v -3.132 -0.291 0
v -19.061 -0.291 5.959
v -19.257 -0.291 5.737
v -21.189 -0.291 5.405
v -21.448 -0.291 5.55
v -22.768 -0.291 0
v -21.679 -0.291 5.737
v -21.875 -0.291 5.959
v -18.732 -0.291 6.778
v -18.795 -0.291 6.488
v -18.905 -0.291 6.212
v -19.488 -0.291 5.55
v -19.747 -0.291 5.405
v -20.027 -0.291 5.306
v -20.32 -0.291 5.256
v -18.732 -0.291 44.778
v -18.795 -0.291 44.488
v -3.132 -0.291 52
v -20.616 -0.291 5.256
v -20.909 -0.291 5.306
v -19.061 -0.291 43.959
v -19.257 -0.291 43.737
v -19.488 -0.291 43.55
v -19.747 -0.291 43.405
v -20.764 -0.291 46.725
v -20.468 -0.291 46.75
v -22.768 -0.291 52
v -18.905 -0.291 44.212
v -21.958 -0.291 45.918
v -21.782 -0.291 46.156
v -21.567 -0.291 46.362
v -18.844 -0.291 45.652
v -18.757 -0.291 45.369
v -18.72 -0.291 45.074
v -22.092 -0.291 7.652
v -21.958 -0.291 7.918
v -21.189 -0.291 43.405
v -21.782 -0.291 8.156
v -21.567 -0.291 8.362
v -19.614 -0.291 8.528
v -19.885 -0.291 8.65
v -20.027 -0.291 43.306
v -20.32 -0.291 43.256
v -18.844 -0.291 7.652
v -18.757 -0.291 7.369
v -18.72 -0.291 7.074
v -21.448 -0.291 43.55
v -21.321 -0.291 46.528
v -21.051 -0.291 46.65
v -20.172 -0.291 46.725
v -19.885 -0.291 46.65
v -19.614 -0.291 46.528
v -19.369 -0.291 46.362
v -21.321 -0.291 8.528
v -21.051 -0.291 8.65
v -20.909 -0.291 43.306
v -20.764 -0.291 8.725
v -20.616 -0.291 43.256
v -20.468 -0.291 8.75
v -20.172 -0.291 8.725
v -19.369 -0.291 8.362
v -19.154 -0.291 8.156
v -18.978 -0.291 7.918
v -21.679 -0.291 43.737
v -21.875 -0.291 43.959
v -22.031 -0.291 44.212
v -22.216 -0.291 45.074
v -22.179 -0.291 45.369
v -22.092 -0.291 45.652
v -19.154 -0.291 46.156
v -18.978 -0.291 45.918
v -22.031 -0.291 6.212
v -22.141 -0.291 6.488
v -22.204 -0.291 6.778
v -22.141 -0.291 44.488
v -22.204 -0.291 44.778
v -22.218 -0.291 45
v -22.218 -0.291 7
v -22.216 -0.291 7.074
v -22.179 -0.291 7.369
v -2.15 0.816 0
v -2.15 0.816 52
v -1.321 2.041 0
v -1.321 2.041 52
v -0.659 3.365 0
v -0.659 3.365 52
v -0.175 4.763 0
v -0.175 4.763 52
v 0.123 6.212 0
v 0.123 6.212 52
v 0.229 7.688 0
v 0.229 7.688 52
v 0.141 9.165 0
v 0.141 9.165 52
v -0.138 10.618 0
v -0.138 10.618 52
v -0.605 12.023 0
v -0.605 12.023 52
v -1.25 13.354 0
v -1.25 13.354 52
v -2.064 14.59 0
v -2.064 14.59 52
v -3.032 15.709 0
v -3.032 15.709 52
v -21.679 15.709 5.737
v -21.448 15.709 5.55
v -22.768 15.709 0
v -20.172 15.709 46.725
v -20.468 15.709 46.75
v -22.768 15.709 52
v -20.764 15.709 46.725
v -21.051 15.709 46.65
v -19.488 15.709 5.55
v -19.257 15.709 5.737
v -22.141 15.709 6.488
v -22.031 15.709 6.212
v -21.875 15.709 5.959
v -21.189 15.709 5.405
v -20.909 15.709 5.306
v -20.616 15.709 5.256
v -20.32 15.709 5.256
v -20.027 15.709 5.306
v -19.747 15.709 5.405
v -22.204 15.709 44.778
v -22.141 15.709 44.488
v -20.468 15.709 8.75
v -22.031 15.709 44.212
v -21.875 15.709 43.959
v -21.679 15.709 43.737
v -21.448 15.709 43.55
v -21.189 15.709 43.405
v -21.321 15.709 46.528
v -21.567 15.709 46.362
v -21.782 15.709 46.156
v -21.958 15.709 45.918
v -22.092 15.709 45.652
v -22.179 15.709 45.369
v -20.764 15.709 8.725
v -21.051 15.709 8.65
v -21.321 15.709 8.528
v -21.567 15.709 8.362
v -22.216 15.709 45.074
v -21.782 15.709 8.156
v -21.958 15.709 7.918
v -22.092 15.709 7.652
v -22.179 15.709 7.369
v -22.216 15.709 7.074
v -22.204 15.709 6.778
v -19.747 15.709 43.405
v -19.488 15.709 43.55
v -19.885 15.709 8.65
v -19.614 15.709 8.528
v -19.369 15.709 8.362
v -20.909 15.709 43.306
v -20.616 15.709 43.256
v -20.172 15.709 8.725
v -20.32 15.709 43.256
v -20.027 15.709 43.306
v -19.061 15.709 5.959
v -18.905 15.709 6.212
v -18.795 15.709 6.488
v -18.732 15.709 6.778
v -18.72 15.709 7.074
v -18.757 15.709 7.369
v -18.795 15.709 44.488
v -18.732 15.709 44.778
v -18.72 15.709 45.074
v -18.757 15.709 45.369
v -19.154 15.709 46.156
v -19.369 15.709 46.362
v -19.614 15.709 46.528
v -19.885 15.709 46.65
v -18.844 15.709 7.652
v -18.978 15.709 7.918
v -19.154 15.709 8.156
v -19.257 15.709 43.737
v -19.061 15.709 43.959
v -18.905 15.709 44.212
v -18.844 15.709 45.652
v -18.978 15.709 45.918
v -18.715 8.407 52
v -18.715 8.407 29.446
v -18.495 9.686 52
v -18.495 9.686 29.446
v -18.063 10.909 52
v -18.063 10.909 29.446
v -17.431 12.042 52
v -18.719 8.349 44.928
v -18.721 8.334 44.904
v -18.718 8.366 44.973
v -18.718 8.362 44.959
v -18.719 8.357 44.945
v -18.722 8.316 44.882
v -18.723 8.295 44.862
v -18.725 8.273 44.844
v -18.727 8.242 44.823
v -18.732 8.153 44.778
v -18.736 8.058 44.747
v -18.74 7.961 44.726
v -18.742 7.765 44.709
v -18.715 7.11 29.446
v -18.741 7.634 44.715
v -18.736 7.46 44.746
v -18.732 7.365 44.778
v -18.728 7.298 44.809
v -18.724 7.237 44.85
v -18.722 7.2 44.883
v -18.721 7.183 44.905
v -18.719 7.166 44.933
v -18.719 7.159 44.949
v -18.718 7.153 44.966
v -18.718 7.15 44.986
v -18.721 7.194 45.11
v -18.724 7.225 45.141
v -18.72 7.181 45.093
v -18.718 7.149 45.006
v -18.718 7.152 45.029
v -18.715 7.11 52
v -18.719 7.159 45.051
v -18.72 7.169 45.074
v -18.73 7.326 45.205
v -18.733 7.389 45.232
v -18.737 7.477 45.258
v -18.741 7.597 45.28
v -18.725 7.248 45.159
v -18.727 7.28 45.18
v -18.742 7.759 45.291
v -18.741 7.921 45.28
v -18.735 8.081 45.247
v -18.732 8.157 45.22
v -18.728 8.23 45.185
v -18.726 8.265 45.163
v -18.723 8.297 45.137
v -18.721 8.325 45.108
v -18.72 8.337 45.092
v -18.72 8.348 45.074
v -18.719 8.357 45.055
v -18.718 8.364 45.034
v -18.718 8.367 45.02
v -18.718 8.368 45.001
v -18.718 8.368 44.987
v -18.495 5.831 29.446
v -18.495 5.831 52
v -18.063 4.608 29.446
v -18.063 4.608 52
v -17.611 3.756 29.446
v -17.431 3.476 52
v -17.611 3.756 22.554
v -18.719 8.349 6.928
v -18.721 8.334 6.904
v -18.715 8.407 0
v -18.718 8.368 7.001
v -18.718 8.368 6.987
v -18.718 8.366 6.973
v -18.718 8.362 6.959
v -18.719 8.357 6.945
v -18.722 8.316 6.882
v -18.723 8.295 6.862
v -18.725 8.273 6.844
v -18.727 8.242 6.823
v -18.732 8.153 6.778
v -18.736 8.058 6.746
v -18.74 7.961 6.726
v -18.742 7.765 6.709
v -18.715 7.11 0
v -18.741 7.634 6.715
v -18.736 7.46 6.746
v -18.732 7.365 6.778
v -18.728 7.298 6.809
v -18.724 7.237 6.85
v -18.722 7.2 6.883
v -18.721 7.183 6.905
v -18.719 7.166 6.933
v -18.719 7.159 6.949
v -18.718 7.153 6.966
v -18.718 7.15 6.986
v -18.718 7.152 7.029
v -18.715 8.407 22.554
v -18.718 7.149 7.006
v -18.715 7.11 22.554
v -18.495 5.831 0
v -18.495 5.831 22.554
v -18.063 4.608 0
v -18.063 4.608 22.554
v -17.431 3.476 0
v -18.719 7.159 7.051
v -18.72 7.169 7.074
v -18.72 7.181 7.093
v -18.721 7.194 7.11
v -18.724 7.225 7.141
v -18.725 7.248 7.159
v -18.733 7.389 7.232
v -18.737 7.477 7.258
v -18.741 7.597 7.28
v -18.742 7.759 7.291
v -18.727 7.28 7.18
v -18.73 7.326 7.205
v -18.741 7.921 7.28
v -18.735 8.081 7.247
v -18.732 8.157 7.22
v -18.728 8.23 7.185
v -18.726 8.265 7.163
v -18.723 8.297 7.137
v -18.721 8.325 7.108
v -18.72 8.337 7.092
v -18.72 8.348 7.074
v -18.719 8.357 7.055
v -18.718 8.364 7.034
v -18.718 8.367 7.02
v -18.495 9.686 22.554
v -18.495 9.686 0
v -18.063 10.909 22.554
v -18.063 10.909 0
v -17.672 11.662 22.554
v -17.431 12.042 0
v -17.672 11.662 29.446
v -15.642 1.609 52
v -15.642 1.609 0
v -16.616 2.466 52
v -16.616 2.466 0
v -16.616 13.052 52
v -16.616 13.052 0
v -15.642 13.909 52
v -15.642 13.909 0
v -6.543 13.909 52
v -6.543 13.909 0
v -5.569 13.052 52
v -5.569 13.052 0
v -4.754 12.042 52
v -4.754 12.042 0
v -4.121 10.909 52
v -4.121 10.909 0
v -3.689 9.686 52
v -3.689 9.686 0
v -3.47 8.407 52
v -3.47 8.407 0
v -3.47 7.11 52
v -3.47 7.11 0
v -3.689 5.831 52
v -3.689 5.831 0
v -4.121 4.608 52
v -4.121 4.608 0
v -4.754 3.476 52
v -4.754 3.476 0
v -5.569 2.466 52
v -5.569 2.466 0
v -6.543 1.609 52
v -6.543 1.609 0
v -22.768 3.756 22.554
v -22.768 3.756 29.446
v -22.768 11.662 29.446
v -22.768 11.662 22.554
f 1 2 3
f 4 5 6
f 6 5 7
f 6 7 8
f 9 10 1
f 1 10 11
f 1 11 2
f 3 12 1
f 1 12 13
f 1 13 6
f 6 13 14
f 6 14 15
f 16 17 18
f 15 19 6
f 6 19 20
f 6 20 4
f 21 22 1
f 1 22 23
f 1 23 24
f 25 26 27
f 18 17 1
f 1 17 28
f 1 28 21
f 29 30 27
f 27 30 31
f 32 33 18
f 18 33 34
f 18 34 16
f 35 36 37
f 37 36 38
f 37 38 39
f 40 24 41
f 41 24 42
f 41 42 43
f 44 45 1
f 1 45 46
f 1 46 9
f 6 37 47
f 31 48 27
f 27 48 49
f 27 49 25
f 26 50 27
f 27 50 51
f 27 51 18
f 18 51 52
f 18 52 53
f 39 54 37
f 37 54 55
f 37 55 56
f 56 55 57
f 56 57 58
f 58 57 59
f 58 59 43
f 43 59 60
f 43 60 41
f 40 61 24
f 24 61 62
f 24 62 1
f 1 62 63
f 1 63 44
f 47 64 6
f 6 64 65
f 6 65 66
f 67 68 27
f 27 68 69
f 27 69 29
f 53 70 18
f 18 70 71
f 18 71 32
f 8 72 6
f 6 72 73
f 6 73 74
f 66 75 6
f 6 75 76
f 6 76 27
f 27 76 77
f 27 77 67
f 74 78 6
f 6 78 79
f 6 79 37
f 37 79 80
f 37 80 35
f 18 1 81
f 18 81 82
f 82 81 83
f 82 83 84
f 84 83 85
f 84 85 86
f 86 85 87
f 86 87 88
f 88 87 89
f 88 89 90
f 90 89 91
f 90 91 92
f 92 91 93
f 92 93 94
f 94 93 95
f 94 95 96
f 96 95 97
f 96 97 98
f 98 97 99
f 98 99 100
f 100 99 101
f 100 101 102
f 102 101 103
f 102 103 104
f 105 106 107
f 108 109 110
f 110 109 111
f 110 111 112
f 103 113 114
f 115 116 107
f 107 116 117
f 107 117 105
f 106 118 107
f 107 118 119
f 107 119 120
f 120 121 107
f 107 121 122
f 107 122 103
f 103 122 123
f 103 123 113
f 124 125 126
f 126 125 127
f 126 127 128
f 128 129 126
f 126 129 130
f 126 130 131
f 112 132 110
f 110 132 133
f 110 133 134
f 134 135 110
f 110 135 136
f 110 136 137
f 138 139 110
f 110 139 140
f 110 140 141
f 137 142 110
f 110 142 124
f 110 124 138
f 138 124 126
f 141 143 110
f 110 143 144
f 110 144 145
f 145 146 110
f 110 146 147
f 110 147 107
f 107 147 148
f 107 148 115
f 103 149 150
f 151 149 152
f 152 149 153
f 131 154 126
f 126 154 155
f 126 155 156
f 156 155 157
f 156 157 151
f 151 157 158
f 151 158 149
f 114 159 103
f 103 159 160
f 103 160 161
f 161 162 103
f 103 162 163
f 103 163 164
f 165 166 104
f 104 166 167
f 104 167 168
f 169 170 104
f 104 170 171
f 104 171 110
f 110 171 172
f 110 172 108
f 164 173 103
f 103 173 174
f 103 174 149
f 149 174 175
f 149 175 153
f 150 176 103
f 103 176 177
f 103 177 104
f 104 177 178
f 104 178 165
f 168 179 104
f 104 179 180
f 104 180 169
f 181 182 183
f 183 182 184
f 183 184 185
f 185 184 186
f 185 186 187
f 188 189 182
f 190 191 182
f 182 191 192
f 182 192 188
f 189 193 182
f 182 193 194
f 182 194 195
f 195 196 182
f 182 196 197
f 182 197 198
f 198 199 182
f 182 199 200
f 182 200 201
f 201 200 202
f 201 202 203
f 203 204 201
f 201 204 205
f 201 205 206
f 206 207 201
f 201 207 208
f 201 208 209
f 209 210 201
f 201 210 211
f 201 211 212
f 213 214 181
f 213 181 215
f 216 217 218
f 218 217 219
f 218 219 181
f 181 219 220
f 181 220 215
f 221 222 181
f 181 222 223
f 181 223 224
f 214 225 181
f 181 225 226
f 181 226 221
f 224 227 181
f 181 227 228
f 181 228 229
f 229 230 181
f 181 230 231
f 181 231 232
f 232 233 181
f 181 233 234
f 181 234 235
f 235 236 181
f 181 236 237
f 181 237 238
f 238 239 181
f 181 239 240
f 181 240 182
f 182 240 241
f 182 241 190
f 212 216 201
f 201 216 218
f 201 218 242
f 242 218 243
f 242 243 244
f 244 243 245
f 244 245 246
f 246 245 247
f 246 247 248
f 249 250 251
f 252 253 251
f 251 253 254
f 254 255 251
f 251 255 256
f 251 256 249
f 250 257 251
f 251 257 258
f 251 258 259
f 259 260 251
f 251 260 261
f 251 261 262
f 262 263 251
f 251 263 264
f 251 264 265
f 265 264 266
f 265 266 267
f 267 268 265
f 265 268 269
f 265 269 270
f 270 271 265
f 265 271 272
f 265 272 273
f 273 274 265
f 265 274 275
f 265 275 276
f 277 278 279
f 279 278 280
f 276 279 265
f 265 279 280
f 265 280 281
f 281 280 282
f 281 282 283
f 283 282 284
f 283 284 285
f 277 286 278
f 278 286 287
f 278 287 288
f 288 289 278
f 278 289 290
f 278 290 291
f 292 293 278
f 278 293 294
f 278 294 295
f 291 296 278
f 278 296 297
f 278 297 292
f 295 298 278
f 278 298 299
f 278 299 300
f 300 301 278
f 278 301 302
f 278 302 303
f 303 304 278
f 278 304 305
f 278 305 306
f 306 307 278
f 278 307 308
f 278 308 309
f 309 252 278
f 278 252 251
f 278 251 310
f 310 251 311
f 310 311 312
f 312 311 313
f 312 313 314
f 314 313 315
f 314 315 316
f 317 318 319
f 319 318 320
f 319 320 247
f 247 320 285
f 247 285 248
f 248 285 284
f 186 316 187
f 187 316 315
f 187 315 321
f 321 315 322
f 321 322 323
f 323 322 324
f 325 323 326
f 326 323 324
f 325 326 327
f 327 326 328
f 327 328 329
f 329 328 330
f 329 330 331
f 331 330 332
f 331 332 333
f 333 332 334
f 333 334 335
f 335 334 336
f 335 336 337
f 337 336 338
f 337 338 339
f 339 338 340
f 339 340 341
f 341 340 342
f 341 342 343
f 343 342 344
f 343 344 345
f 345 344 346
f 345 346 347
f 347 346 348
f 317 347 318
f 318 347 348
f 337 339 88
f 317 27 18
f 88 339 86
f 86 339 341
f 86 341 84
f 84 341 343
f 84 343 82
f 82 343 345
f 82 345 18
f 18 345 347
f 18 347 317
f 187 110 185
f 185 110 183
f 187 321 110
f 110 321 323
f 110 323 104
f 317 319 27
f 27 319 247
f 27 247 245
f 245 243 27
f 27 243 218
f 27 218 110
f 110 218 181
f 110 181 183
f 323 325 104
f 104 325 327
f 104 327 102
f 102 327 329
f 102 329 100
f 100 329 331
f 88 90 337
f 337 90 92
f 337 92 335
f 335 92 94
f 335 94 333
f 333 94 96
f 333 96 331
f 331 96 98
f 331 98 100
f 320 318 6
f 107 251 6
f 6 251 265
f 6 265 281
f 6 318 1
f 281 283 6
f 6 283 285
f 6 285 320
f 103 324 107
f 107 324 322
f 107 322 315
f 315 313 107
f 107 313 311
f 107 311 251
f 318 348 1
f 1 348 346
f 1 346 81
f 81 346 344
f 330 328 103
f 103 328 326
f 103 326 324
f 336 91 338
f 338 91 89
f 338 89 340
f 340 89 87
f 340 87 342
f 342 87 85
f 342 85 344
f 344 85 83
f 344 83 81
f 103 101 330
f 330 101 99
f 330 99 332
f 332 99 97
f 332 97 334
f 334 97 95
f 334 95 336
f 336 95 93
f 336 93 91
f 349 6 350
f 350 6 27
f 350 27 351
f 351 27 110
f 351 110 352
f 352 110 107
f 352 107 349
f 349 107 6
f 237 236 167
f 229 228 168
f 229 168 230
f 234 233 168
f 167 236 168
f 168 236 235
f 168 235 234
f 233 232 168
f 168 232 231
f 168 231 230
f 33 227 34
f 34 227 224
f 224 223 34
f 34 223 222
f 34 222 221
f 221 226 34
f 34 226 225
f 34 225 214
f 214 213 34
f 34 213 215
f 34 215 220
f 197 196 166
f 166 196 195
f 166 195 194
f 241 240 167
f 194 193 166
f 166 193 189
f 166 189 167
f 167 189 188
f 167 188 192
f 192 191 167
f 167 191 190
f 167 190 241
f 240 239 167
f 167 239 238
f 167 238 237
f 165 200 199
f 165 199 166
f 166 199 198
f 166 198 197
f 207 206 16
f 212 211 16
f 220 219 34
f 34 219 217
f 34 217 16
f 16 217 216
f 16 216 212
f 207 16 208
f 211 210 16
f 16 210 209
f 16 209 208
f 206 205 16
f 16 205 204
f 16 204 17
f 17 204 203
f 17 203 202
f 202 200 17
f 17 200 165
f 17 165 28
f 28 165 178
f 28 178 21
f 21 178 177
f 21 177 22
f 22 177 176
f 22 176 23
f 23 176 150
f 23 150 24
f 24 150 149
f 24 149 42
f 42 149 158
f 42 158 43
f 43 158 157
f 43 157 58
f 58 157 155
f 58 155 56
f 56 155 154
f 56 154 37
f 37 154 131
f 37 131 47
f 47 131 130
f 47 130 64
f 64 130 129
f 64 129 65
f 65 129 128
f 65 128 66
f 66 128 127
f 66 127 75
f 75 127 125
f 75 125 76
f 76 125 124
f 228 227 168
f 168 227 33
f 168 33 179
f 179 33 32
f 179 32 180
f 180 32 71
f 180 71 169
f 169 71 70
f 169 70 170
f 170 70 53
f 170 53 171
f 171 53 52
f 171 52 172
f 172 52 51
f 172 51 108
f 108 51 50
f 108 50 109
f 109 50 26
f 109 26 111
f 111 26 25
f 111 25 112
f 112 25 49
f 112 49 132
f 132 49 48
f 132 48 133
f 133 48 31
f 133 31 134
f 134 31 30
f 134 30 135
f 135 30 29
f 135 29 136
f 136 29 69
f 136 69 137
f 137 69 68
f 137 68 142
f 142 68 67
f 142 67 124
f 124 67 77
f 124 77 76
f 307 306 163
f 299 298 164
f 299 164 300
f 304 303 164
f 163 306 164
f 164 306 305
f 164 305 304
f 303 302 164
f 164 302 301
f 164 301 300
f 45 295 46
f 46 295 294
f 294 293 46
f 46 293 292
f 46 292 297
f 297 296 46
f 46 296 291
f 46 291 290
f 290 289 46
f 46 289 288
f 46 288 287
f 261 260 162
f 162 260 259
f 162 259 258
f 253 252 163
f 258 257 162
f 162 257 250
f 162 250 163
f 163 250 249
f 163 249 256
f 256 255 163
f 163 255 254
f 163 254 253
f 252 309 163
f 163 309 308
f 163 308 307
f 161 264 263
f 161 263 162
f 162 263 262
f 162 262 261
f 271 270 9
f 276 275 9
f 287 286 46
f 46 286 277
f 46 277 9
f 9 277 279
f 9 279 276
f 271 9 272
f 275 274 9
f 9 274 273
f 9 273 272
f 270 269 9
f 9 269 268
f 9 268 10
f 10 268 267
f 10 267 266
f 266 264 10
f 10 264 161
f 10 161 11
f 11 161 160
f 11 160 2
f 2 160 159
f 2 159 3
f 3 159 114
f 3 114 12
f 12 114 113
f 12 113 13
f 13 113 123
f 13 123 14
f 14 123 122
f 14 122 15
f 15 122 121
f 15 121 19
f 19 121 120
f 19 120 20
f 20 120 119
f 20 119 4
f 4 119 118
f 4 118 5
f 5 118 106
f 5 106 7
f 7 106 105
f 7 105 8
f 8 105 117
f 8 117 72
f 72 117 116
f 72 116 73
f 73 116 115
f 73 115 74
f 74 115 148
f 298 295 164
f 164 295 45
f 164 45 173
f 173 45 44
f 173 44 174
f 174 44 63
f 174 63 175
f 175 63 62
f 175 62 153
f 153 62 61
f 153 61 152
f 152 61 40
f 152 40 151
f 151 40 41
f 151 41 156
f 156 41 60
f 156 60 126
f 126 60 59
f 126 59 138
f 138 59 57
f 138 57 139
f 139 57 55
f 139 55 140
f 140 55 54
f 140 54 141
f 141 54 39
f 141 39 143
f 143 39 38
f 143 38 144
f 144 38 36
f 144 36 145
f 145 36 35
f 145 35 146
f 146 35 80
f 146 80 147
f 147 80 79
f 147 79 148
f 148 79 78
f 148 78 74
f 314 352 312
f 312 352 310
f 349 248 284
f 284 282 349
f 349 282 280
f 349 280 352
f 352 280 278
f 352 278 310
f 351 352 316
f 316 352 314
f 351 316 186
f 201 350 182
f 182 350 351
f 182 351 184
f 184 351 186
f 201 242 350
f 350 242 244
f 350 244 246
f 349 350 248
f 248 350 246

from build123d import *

# Parameters (mm, degrees)
SALIENTE_EXTRUIR1_DEPTH = 52
CROQUIS3_W              = 0.615681901
CROQUIS3_H              = 16
SALIENTE_EXTRUIR2_DEPTH = 52
CROQUIS2_R              = 1.75
CORTAR_EXTRUIR1_DEPTH   = 52
CROQUIS4_W              = 6.89100463
CROQUIS4_H              = 7.9059588
CORTAR_EXTRUIR2_DEPTH   = 10


with BuildPart() as part:
    # Croquis1 → Saliente-Extruir1 (new body)
    with BuildSketch(Plane.XY):
        with BuildLine():
            Line((-3.032251305, 15.708802589), (-22.152251305, 15.708802589))
            Line((-22.152251305, 15.708802589), (-22.152251305, -0.291197411))
            Line((-22.152251305, -0.291197411), (-3.132125677, -0.291197411))
            ThreePointArc((-3.132125677, -0.291197411), (-3.082032439, -0.241353267), (-3.032251305, -0.191197411))
            ThreePointArc((-3.032251305, -0.191197411), (0.228795467, 7.758802589), (-3.032251305, 15.708802589))
        make_face()
        with BuildLine():
            Line((-15.641976571, 13.908802589), (-6.542526038, 13.908802589))
            ThreePointArc((-6.542526038, 13.908802589), (-3.442251305, 7.758802589), (-6.542526038, 1.608802589))
            Line((-6.542526038, 1.608802589), (-15.641976571, 1.608802589))
            ThreePointArc((-15.641976571, 1.608802589), (-18.742251305, 7.758802589), (-15.641976571, 13.908802589))
        make_face(mode=Mode.SUBTRACT)
    extrude(amount=SALIENTE_EXTRUIR1_DEPTH)

    # Croquis3 → Saliente-Extruir2 (add)
    with BuildSketch(Plane.XY.offset(52)):
        with Locations((-22.460092256, 7.708802589)):
            Rectangle(CROQUIS3_W, CROQUIS3_H)
    extrude(amount=-SALIENTE_EXTRUIR2_DEPTH)

    # Croquis2 → Cortar-Extruir1 (cut)
    with BuildSketch(Plane(origin=(0, 15.708802589, 0), x_dir=(1, 0, 0), z_dir=(0, 1, 0))):
        with Locations(Location((-20.467933206, -7, 0), (0, 0, 270))):
            Circle(CROQUIS2_R)
        with Locations(Location((-20.467933206, -45, 0), (0, 0, 270))):
            Circle(CROQUIS2_R)
    extrude(amount=-CORTAR_EXTRUIR1_DEPTH, mode=Mode.SUBTRACT)

    # Croquis4 → Cortar-Extruir2 (cut)
    with BuildSketch(Plane.ZY.offset(22.767933206)):
        with Locations((26, 7.708802589)):
            Rectangle(CROQUIS4_W, CROQUIS4_H)
    extrude(amount=-CORTAR_EXTRUIR2_DEPTH, mode=Mode.SUBTRACT)


solid = part.part
